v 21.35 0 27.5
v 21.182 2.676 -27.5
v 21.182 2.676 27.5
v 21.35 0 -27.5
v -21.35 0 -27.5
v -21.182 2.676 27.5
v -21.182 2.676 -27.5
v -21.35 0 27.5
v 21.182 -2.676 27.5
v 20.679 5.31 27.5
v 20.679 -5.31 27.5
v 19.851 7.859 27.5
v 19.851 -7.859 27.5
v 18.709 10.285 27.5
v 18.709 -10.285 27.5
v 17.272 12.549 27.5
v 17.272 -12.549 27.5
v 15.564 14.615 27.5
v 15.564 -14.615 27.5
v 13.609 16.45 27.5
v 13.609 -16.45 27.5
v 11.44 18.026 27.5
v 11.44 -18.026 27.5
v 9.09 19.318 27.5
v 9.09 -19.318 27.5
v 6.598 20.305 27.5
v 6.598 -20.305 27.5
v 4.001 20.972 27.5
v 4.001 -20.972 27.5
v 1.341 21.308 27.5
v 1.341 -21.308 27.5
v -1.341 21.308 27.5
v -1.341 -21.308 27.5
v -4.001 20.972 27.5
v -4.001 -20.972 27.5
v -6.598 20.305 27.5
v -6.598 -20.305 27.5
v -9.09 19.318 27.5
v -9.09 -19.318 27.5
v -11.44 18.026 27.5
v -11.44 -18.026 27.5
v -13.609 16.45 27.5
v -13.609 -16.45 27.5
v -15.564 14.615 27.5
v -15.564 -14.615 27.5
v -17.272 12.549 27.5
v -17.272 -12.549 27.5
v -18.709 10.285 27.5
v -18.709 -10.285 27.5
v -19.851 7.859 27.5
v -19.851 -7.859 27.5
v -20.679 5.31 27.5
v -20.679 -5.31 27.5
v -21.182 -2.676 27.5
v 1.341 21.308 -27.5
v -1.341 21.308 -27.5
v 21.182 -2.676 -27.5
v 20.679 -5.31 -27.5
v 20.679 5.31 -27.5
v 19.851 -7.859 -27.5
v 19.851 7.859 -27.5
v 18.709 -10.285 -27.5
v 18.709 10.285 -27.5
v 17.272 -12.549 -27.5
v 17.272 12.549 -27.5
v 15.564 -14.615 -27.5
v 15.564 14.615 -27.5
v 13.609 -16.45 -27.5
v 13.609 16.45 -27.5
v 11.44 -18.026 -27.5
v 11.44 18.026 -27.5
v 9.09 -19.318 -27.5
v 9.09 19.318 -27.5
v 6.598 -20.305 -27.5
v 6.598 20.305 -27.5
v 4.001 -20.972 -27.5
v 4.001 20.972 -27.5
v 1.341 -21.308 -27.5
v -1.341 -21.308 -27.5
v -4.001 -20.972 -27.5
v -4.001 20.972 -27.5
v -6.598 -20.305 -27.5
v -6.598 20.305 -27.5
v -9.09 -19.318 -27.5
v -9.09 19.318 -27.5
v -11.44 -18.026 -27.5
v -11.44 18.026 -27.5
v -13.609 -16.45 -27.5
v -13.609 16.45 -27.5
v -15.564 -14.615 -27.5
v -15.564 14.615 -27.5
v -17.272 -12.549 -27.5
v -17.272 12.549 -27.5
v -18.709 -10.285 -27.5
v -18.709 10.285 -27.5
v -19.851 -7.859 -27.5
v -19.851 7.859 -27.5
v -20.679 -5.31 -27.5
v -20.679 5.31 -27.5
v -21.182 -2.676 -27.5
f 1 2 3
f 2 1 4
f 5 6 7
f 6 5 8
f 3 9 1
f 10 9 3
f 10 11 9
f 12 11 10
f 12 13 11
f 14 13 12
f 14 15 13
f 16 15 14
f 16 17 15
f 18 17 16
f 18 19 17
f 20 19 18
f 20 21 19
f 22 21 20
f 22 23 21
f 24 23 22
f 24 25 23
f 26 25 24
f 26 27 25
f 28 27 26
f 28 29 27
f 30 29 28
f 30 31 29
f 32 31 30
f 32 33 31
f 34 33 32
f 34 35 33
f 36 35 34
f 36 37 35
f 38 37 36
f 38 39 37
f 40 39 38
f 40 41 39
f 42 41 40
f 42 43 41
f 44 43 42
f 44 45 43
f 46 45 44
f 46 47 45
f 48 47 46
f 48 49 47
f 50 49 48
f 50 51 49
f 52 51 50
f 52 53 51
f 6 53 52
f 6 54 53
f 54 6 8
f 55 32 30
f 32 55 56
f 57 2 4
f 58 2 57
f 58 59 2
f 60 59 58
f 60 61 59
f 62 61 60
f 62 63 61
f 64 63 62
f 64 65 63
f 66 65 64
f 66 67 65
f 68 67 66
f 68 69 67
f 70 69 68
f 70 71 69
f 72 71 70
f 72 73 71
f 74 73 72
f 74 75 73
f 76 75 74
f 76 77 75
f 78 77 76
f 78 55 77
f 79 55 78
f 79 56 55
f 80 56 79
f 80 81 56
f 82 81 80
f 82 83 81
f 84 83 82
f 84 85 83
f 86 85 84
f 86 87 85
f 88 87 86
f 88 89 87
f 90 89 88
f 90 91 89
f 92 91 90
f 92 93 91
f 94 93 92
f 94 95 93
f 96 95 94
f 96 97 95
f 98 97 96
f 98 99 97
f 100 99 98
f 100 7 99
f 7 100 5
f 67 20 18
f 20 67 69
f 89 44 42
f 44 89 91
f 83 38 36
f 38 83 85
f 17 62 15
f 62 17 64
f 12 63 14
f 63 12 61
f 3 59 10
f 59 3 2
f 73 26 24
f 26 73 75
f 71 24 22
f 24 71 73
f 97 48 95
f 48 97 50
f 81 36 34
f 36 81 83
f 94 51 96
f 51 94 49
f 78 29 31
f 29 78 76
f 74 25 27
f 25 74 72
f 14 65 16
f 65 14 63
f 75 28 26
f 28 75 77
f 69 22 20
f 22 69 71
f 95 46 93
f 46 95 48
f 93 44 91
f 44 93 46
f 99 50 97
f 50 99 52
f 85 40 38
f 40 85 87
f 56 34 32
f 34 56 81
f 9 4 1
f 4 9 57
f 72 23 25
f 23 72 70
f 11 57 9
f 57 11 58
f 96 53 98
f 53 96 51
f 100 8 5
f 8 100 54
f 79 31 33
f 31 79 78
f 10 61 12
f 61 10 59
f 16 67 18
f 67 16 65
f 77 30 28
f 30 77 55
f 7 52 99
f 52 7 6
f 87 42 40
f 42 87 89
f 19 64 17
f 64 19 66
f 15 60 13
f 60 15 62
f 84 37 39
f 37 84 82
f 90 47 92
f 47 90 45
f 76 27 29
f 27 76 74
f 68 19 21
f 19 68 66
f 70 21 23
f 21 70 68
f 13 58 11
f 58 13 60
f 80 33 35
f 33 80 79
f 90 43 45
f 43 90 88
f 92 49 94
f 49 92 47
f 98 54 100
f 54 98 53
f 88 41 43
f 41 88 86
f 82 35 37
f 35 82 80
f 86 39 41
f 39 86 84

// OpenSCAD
$fn = 50;


difference() {
	union() {
		translate(v = [0, 0, -27.5000000000]) {
			cylinder(h = 55, r = 21.3500000000);
		}
	}
	union() {
		translate(v = [0, 0, -100.0000000000]) {
			cylinder(h = 200, r = 0);
		}
	}
}
